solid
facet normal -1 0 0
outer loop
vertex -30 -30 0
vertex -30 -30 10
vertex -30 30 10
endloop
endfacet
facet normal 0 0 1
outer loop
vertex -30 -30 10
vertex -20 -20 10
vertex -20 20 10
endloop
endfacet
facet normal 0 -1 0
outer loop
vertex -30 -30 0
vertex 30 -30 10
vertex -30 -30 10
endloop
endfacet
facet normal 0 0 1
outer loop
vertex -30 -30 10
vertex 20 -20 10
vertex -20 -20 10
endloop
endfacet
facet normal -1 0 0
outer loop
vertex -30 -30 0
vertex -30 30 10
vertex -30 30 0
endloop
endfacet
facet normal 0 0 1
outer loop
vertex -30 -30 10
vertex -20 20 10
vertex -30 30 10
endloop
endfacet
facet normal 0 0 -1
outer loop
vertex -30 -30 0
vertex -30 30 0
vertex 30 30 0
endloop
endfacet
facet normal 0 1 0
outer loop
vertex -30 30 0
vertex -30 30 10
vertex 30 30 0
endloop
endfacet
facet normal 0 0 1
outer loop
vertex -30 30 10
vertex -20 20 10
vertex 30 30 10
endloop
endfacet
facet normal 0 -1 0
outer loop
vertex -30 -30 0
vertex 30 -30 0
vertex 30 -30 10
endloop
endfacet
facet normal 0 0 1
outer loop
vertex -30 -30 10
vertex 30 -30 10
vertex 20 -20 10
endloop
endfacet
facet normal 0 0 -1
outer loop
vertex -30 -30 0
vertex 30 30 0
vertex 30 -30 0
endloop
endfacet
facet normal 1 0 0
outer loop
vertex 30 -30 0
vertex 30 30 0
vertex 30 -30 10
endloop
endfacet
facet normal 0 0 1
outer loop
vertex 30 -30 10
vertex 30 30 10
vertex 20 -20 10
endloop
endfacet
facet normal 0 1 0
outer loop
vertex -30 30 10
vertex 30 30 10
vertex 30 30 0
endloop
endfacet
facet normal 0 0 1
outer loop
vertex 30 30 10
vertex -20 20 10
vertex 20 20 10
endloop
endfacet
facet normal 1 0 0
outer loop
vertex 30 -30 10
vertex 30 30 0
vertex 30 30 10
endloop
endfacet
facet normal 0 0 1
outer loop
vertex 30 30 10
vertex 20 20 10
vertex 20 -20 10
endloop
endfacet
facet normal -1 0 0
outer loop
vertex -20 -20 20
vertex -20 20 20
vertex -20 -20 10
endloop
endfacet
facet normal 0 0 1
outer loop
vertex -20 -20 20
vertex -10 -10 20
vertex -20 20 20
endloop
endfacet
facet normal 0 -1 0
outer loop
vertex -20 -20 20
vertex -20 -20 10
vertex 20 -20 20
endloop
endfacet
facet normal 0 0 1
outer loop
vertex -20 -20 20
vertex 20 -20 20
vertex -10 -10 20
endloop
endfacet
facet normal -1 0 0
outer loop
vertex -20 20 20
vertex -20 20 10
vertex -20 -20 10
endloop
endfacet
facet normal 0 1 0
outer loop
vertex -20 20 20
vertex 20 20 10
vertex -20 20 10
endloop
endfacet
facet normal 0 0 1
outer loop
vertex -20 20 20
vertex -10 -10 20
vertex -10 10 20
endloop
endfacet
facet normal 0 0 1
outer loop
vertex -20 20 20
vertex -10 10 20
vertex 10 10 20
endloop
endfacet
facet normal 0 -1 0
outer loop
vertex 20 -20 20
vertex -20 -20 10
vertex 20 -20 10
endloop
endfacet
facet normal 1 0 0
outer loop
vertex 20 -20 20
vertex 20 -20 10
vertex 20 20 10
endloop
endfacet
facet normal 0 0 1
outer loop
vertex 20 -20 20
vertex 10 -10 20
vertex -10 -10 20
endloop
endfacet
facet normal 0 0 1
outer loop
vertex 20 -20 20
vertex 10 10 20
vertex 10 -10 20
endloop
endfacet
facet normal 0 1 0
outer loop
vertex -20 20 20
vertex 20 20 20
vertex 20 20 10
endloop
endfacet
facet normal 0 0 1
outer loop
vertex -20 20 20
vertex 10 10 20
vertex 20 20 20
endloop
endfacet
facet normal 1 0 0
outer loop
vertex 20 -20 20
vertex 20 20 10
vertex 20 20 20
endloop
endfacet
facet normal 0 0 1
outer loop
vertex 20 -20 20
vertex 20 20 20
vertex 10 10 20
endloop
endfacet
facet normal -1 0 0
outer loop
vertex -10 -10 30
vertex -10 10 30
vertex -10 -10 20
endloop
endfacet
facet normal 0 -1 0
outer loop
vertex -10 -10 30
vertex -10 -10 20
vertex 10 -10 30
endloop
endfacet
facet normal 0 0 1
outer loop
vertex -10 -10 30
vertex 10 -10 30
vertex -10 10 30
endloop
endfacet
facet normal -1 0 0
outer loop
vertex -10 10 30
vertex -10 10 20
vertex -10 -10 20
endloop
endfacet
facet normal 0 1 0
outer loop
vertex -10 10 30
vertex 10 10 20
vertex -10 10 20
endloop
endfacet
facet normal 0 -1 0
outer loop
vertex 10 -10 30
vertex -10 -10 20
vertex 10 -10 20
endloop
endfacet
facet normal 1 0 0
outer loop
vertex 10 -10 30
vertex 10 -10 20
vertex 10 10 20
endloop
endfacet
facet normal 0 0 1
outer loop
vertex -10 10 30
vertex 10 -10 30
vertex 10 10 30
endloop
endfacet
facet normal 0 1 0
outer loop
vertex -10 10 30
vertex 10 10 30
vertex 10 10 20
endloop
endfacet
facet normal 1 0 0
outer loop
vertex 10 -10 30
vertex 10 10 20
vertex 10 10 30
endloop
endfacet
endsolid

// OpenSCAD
// 3 段の階段状ピラミッド
translate([-30, -30, 0])
    cube([60, 60, 10]);

translate([-20, -20, 10])
    cube([40, 40, 10]);

translate([-10, -10, 20])
    cube([20, 20, 10]);
